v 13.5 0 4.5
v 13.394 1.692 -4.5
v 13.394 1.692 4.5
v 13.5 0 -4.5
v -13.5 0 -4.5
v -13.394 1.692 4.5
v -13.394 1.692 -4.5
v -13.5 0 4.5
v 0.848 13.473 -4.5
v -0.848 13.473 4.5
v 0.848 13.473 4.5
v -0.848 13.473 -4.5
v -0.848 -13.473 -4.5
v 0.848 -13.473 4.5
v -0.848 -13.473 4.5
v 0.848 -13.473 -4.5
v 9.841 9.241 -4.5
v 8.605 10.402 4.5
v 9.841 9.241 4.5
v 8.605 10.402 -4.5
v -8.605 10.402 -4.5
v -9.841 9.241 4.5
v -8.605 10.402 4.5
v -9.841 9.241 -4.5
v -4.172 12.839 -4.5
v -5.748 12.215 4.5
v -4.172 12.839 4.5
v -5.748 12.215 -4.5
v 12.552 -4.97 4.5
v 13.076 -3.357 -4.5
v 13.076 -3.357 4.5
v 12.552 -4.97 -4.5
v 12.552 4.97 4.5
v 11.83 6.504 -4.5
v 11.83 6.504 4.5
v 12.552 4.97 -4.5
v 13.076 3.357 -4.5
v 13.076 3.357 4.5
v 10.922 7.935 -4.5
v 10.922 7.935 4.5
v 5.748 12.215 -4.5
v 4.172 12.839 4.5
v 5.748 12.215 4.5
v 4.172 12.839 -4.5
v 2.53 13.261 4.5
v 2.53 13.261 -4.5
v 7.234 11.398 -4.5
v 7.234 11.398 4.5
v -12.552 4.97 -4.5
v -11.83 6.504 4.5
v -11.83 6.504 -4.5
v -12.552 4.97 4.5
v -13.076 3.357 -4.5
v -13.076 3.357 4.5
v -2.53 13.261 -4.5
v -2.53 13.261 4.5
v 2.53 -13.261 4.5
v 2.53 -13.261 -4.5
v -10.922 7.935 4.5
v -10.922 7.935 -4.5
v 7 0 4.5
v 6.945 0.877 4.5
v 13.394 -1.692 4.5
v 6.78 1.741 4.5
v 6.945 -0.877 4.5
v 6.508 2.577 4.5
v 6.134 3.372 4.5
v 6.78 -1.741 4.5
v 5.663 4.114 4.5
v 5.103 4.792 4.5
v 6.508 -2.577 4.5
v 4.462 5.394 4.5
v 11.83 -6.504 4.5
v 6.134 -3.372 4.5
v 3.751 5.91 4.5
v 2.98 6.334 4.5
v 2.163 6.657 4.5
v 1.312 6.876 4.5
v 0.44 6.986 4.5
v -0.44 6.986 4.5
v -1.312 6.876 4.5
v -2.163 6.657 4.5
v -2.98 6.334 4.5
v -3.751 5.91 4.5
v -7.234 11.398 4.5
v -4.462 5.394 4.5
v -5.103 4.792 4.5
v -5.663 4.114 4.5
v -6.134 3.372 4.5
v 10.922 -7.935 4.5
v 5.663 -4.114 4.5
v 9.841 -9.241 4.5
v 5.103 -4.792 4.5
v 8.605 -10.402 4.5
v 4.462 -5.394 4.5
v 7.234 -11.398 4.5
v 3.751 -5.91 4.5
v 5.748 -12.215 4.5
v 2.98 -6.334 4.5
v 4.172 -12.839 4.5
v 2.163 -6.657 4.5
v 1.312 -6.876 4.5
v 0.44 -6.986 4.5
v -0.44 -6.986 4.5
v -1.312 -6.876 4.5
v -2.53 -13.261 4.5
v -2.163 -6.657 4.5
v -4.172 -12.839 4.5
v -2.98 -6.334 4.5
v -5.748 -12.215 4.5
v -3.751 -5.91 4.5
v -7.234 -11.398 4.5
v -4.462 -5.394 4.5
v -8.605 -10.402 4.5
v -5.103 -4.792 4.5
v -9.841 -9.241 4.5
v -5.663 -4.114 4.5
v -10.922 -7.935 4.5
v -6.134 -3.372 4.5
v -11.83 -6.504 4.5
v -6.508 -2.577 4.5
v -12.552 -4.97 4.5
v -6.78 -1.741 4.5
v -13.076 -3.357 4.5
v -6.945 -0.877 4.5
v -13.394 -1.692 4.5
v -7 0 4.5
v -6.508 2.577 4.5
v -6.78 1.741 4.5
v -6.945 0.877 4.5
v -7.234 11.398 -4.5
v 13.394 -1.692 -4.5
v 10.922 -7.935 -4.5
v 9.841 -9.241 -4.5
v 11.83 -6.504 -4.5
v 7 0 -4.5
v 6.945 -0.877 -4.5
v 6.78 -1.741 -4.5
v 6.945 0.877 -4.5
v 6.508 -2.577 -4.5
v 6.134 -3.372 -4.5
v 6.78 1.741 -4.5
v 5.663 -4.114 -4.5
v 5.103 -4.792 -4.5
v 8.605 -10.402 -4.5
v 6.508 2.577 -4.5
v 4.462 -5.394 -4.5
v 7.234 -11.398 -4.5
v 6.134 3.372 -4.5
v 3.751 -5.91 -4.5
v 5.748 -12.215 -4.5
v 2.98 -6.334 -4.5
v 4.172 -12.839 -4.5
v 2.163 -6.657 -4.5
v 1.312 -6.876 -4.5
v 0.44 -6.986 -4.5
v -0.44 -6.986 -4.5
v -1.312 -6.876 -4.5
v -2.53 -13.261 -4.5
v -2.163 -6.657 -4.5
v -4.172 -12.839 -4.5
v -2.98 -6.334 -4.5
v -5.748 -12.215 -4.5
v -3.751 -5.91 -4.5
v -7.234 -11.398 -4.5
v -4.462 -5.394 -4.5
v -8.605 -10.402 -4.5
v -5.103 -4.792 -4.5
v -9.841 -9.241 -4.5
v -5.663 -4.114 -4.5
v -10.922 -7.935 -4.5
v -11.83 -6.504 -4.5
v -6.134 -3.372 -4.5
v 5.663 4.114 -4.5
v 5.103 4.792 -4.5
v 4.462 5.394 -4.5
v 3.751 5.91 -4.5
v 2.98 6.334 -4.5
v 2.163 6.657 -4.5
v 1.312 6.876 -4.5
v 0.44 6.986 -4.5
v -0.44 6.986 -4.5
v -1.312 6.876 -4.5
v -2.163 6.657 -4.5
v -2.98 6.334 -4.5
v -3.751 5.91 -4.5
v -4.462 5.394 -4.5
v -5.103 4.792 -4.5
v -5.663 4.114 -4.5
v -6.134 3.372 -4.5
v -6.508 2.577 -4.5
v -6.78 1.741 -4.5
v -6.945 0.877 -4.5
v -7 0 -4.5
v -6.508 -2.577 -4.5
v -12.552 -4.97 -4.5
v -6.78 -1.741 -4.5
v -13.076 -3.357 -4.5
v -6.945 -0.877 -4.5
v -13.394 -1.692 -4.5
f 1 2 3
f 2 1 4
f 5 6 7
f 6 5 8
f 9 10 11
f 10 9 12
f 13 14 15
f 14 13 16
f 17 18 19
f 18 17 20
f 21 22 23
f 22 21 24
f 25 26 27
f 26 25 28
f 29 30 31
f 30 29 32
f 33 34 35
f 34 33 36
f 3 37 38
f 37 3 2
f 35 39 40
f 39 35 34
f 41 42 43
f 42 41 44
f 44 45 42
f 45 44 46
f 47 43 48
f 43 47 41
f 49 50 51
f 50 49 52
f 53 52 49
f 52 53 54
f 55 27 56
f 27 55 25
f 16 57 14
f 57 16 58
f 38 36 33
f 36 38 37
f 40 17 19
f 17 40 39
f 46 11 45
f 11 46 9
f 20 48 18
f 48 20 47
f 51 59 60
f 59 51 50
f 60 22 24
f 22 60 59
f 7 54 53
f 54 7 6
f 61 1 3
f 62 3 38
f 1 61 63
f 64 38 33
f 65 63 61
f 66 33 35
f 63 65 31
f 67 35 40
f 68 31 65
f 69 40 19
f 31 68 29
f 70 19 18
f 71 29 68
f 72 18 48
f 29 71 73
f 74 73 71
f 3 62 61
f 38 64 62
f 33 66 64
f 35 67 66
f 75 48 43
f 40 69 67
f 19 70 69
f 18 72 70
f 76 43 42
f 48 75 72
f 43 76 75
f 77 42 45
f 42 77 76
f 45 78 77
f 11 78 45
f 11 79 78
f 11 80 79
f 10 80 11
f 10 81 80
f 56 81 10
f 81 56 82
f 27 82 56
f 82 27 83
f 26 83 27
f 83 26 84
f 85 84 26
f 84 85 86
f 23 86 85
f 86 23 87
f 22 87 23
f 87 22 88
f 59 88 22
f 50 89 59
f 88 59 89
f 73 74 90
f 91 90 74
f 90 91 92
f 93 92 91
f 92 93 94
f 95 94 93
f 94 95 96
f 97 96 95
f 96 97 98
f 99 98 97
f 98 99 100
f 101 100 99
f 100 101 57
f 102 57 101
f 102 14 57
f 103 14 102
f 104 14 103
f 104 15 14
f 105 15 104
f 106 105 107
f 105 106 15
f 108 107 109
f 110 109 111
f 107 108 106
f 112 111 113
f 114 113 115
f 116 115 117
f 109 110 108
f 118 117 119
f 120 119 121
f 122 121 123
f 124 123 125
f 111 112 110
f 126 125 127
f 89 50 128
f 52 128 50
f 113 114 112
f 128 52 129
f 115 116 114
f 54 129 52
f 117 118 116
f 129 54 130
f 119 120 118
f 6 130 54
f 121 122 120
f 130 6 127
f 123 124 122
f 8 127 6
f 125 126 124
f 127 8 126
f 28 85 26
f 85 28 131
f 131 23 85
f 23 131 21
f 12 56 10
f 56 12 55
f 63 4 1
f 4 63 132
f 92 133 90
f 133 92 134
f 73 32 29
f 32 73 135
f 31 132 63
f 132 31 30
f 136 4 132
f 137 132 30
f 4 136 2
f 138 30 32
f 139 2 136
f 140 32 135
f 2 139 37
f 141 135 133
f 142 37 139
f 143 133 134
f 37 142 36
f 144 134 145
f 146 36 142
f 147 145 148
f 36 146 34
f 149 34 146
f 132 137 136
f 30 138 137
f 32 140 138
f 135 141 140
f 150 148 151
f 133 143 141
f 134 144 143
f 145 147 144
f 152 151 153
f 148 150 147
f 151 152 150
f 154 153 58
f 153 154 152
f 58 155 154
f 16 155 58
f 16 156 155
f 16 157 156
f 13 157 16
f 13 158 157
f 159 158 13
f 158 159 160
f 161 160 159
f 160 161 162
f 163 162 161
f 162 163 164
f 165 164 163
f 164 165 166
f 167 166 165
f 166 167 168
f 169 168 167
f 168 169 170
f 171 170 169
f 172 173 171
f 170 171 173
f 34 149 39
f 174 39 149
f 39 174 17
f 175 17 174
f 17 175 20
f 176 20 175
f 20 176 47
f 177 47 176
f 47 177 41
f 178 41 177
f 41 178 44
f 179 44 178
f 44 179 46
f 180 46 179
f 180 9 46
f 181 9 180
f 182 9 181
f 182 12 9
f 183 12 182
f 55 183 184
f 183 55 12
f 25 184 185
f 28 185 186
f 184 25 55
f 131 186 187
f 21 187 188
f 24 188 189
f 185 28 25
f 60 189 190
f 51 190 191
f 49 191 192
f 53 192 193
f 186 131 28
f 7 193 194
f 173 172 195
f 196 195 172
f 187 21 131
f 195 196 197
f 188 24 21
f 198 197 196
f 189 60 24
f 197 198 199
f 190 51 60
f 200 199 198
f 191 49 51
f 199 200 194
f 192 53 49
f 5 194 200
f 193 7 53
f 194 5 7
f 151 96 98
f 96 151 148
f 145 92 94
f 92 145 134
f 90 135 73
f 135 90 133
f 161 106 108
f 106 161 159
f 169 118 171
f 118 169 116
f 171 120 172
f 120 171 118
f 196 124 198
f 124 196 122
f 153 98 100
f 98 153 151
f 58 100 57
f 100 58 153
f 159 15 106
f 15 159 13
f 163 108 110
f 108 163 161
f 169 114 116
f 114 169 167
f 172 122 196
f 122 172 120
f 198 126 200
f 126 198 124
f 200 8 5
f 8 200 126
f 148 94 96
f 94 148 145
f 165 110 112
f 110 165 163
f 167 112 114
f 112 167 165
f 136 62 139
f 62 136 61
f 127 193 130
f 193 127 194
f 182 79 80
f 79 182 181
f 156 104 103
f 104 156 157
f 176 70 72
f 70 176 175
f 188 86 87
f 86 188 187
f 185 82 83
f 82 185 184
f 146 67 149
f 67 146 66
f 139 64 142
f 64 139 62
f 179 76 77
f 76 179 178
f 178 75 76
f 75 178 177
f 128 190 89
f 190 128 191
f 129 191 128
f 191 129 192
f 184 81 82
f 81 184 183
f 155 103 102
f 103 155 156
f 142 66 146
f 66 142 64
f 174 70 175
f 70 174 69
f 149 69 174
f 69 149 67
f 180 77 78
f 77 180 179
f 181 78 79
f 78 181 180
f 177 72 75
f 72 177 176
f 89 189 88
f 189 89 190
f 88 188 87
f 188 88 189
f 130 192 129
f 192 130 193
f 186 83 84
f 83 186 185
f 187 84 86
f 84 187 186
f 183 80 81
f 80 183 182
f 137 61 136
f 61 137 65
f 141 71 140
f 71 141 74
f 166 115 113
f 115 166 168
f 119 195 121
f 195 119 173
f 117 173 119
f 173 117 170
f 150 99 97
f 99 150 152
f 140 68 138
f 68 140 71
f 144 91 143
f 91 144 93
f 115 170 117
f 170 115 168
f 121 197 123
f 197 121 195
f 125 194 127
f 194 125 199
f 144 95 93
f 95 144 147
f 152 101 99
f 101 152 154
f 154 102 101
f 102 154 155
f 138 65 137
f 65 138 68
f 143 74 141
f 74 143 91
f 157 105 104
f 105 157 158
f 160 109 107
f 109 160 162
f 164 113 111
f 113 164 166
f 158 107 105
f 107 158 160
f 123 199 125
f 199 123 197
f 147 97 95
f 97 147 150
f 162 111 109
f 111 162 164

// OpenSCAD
$fn = 50;


difference() {
	union() {
		translate(v = [0, 0, -4.5000000000]) {
			cylinder(h = 9, r = 13.5000000000);
		}
	}
	union() {
		translate(v = [0, 0, -100.0000000000]) {
			cylinder(h = 200, r = 7);
		}
	}
}
